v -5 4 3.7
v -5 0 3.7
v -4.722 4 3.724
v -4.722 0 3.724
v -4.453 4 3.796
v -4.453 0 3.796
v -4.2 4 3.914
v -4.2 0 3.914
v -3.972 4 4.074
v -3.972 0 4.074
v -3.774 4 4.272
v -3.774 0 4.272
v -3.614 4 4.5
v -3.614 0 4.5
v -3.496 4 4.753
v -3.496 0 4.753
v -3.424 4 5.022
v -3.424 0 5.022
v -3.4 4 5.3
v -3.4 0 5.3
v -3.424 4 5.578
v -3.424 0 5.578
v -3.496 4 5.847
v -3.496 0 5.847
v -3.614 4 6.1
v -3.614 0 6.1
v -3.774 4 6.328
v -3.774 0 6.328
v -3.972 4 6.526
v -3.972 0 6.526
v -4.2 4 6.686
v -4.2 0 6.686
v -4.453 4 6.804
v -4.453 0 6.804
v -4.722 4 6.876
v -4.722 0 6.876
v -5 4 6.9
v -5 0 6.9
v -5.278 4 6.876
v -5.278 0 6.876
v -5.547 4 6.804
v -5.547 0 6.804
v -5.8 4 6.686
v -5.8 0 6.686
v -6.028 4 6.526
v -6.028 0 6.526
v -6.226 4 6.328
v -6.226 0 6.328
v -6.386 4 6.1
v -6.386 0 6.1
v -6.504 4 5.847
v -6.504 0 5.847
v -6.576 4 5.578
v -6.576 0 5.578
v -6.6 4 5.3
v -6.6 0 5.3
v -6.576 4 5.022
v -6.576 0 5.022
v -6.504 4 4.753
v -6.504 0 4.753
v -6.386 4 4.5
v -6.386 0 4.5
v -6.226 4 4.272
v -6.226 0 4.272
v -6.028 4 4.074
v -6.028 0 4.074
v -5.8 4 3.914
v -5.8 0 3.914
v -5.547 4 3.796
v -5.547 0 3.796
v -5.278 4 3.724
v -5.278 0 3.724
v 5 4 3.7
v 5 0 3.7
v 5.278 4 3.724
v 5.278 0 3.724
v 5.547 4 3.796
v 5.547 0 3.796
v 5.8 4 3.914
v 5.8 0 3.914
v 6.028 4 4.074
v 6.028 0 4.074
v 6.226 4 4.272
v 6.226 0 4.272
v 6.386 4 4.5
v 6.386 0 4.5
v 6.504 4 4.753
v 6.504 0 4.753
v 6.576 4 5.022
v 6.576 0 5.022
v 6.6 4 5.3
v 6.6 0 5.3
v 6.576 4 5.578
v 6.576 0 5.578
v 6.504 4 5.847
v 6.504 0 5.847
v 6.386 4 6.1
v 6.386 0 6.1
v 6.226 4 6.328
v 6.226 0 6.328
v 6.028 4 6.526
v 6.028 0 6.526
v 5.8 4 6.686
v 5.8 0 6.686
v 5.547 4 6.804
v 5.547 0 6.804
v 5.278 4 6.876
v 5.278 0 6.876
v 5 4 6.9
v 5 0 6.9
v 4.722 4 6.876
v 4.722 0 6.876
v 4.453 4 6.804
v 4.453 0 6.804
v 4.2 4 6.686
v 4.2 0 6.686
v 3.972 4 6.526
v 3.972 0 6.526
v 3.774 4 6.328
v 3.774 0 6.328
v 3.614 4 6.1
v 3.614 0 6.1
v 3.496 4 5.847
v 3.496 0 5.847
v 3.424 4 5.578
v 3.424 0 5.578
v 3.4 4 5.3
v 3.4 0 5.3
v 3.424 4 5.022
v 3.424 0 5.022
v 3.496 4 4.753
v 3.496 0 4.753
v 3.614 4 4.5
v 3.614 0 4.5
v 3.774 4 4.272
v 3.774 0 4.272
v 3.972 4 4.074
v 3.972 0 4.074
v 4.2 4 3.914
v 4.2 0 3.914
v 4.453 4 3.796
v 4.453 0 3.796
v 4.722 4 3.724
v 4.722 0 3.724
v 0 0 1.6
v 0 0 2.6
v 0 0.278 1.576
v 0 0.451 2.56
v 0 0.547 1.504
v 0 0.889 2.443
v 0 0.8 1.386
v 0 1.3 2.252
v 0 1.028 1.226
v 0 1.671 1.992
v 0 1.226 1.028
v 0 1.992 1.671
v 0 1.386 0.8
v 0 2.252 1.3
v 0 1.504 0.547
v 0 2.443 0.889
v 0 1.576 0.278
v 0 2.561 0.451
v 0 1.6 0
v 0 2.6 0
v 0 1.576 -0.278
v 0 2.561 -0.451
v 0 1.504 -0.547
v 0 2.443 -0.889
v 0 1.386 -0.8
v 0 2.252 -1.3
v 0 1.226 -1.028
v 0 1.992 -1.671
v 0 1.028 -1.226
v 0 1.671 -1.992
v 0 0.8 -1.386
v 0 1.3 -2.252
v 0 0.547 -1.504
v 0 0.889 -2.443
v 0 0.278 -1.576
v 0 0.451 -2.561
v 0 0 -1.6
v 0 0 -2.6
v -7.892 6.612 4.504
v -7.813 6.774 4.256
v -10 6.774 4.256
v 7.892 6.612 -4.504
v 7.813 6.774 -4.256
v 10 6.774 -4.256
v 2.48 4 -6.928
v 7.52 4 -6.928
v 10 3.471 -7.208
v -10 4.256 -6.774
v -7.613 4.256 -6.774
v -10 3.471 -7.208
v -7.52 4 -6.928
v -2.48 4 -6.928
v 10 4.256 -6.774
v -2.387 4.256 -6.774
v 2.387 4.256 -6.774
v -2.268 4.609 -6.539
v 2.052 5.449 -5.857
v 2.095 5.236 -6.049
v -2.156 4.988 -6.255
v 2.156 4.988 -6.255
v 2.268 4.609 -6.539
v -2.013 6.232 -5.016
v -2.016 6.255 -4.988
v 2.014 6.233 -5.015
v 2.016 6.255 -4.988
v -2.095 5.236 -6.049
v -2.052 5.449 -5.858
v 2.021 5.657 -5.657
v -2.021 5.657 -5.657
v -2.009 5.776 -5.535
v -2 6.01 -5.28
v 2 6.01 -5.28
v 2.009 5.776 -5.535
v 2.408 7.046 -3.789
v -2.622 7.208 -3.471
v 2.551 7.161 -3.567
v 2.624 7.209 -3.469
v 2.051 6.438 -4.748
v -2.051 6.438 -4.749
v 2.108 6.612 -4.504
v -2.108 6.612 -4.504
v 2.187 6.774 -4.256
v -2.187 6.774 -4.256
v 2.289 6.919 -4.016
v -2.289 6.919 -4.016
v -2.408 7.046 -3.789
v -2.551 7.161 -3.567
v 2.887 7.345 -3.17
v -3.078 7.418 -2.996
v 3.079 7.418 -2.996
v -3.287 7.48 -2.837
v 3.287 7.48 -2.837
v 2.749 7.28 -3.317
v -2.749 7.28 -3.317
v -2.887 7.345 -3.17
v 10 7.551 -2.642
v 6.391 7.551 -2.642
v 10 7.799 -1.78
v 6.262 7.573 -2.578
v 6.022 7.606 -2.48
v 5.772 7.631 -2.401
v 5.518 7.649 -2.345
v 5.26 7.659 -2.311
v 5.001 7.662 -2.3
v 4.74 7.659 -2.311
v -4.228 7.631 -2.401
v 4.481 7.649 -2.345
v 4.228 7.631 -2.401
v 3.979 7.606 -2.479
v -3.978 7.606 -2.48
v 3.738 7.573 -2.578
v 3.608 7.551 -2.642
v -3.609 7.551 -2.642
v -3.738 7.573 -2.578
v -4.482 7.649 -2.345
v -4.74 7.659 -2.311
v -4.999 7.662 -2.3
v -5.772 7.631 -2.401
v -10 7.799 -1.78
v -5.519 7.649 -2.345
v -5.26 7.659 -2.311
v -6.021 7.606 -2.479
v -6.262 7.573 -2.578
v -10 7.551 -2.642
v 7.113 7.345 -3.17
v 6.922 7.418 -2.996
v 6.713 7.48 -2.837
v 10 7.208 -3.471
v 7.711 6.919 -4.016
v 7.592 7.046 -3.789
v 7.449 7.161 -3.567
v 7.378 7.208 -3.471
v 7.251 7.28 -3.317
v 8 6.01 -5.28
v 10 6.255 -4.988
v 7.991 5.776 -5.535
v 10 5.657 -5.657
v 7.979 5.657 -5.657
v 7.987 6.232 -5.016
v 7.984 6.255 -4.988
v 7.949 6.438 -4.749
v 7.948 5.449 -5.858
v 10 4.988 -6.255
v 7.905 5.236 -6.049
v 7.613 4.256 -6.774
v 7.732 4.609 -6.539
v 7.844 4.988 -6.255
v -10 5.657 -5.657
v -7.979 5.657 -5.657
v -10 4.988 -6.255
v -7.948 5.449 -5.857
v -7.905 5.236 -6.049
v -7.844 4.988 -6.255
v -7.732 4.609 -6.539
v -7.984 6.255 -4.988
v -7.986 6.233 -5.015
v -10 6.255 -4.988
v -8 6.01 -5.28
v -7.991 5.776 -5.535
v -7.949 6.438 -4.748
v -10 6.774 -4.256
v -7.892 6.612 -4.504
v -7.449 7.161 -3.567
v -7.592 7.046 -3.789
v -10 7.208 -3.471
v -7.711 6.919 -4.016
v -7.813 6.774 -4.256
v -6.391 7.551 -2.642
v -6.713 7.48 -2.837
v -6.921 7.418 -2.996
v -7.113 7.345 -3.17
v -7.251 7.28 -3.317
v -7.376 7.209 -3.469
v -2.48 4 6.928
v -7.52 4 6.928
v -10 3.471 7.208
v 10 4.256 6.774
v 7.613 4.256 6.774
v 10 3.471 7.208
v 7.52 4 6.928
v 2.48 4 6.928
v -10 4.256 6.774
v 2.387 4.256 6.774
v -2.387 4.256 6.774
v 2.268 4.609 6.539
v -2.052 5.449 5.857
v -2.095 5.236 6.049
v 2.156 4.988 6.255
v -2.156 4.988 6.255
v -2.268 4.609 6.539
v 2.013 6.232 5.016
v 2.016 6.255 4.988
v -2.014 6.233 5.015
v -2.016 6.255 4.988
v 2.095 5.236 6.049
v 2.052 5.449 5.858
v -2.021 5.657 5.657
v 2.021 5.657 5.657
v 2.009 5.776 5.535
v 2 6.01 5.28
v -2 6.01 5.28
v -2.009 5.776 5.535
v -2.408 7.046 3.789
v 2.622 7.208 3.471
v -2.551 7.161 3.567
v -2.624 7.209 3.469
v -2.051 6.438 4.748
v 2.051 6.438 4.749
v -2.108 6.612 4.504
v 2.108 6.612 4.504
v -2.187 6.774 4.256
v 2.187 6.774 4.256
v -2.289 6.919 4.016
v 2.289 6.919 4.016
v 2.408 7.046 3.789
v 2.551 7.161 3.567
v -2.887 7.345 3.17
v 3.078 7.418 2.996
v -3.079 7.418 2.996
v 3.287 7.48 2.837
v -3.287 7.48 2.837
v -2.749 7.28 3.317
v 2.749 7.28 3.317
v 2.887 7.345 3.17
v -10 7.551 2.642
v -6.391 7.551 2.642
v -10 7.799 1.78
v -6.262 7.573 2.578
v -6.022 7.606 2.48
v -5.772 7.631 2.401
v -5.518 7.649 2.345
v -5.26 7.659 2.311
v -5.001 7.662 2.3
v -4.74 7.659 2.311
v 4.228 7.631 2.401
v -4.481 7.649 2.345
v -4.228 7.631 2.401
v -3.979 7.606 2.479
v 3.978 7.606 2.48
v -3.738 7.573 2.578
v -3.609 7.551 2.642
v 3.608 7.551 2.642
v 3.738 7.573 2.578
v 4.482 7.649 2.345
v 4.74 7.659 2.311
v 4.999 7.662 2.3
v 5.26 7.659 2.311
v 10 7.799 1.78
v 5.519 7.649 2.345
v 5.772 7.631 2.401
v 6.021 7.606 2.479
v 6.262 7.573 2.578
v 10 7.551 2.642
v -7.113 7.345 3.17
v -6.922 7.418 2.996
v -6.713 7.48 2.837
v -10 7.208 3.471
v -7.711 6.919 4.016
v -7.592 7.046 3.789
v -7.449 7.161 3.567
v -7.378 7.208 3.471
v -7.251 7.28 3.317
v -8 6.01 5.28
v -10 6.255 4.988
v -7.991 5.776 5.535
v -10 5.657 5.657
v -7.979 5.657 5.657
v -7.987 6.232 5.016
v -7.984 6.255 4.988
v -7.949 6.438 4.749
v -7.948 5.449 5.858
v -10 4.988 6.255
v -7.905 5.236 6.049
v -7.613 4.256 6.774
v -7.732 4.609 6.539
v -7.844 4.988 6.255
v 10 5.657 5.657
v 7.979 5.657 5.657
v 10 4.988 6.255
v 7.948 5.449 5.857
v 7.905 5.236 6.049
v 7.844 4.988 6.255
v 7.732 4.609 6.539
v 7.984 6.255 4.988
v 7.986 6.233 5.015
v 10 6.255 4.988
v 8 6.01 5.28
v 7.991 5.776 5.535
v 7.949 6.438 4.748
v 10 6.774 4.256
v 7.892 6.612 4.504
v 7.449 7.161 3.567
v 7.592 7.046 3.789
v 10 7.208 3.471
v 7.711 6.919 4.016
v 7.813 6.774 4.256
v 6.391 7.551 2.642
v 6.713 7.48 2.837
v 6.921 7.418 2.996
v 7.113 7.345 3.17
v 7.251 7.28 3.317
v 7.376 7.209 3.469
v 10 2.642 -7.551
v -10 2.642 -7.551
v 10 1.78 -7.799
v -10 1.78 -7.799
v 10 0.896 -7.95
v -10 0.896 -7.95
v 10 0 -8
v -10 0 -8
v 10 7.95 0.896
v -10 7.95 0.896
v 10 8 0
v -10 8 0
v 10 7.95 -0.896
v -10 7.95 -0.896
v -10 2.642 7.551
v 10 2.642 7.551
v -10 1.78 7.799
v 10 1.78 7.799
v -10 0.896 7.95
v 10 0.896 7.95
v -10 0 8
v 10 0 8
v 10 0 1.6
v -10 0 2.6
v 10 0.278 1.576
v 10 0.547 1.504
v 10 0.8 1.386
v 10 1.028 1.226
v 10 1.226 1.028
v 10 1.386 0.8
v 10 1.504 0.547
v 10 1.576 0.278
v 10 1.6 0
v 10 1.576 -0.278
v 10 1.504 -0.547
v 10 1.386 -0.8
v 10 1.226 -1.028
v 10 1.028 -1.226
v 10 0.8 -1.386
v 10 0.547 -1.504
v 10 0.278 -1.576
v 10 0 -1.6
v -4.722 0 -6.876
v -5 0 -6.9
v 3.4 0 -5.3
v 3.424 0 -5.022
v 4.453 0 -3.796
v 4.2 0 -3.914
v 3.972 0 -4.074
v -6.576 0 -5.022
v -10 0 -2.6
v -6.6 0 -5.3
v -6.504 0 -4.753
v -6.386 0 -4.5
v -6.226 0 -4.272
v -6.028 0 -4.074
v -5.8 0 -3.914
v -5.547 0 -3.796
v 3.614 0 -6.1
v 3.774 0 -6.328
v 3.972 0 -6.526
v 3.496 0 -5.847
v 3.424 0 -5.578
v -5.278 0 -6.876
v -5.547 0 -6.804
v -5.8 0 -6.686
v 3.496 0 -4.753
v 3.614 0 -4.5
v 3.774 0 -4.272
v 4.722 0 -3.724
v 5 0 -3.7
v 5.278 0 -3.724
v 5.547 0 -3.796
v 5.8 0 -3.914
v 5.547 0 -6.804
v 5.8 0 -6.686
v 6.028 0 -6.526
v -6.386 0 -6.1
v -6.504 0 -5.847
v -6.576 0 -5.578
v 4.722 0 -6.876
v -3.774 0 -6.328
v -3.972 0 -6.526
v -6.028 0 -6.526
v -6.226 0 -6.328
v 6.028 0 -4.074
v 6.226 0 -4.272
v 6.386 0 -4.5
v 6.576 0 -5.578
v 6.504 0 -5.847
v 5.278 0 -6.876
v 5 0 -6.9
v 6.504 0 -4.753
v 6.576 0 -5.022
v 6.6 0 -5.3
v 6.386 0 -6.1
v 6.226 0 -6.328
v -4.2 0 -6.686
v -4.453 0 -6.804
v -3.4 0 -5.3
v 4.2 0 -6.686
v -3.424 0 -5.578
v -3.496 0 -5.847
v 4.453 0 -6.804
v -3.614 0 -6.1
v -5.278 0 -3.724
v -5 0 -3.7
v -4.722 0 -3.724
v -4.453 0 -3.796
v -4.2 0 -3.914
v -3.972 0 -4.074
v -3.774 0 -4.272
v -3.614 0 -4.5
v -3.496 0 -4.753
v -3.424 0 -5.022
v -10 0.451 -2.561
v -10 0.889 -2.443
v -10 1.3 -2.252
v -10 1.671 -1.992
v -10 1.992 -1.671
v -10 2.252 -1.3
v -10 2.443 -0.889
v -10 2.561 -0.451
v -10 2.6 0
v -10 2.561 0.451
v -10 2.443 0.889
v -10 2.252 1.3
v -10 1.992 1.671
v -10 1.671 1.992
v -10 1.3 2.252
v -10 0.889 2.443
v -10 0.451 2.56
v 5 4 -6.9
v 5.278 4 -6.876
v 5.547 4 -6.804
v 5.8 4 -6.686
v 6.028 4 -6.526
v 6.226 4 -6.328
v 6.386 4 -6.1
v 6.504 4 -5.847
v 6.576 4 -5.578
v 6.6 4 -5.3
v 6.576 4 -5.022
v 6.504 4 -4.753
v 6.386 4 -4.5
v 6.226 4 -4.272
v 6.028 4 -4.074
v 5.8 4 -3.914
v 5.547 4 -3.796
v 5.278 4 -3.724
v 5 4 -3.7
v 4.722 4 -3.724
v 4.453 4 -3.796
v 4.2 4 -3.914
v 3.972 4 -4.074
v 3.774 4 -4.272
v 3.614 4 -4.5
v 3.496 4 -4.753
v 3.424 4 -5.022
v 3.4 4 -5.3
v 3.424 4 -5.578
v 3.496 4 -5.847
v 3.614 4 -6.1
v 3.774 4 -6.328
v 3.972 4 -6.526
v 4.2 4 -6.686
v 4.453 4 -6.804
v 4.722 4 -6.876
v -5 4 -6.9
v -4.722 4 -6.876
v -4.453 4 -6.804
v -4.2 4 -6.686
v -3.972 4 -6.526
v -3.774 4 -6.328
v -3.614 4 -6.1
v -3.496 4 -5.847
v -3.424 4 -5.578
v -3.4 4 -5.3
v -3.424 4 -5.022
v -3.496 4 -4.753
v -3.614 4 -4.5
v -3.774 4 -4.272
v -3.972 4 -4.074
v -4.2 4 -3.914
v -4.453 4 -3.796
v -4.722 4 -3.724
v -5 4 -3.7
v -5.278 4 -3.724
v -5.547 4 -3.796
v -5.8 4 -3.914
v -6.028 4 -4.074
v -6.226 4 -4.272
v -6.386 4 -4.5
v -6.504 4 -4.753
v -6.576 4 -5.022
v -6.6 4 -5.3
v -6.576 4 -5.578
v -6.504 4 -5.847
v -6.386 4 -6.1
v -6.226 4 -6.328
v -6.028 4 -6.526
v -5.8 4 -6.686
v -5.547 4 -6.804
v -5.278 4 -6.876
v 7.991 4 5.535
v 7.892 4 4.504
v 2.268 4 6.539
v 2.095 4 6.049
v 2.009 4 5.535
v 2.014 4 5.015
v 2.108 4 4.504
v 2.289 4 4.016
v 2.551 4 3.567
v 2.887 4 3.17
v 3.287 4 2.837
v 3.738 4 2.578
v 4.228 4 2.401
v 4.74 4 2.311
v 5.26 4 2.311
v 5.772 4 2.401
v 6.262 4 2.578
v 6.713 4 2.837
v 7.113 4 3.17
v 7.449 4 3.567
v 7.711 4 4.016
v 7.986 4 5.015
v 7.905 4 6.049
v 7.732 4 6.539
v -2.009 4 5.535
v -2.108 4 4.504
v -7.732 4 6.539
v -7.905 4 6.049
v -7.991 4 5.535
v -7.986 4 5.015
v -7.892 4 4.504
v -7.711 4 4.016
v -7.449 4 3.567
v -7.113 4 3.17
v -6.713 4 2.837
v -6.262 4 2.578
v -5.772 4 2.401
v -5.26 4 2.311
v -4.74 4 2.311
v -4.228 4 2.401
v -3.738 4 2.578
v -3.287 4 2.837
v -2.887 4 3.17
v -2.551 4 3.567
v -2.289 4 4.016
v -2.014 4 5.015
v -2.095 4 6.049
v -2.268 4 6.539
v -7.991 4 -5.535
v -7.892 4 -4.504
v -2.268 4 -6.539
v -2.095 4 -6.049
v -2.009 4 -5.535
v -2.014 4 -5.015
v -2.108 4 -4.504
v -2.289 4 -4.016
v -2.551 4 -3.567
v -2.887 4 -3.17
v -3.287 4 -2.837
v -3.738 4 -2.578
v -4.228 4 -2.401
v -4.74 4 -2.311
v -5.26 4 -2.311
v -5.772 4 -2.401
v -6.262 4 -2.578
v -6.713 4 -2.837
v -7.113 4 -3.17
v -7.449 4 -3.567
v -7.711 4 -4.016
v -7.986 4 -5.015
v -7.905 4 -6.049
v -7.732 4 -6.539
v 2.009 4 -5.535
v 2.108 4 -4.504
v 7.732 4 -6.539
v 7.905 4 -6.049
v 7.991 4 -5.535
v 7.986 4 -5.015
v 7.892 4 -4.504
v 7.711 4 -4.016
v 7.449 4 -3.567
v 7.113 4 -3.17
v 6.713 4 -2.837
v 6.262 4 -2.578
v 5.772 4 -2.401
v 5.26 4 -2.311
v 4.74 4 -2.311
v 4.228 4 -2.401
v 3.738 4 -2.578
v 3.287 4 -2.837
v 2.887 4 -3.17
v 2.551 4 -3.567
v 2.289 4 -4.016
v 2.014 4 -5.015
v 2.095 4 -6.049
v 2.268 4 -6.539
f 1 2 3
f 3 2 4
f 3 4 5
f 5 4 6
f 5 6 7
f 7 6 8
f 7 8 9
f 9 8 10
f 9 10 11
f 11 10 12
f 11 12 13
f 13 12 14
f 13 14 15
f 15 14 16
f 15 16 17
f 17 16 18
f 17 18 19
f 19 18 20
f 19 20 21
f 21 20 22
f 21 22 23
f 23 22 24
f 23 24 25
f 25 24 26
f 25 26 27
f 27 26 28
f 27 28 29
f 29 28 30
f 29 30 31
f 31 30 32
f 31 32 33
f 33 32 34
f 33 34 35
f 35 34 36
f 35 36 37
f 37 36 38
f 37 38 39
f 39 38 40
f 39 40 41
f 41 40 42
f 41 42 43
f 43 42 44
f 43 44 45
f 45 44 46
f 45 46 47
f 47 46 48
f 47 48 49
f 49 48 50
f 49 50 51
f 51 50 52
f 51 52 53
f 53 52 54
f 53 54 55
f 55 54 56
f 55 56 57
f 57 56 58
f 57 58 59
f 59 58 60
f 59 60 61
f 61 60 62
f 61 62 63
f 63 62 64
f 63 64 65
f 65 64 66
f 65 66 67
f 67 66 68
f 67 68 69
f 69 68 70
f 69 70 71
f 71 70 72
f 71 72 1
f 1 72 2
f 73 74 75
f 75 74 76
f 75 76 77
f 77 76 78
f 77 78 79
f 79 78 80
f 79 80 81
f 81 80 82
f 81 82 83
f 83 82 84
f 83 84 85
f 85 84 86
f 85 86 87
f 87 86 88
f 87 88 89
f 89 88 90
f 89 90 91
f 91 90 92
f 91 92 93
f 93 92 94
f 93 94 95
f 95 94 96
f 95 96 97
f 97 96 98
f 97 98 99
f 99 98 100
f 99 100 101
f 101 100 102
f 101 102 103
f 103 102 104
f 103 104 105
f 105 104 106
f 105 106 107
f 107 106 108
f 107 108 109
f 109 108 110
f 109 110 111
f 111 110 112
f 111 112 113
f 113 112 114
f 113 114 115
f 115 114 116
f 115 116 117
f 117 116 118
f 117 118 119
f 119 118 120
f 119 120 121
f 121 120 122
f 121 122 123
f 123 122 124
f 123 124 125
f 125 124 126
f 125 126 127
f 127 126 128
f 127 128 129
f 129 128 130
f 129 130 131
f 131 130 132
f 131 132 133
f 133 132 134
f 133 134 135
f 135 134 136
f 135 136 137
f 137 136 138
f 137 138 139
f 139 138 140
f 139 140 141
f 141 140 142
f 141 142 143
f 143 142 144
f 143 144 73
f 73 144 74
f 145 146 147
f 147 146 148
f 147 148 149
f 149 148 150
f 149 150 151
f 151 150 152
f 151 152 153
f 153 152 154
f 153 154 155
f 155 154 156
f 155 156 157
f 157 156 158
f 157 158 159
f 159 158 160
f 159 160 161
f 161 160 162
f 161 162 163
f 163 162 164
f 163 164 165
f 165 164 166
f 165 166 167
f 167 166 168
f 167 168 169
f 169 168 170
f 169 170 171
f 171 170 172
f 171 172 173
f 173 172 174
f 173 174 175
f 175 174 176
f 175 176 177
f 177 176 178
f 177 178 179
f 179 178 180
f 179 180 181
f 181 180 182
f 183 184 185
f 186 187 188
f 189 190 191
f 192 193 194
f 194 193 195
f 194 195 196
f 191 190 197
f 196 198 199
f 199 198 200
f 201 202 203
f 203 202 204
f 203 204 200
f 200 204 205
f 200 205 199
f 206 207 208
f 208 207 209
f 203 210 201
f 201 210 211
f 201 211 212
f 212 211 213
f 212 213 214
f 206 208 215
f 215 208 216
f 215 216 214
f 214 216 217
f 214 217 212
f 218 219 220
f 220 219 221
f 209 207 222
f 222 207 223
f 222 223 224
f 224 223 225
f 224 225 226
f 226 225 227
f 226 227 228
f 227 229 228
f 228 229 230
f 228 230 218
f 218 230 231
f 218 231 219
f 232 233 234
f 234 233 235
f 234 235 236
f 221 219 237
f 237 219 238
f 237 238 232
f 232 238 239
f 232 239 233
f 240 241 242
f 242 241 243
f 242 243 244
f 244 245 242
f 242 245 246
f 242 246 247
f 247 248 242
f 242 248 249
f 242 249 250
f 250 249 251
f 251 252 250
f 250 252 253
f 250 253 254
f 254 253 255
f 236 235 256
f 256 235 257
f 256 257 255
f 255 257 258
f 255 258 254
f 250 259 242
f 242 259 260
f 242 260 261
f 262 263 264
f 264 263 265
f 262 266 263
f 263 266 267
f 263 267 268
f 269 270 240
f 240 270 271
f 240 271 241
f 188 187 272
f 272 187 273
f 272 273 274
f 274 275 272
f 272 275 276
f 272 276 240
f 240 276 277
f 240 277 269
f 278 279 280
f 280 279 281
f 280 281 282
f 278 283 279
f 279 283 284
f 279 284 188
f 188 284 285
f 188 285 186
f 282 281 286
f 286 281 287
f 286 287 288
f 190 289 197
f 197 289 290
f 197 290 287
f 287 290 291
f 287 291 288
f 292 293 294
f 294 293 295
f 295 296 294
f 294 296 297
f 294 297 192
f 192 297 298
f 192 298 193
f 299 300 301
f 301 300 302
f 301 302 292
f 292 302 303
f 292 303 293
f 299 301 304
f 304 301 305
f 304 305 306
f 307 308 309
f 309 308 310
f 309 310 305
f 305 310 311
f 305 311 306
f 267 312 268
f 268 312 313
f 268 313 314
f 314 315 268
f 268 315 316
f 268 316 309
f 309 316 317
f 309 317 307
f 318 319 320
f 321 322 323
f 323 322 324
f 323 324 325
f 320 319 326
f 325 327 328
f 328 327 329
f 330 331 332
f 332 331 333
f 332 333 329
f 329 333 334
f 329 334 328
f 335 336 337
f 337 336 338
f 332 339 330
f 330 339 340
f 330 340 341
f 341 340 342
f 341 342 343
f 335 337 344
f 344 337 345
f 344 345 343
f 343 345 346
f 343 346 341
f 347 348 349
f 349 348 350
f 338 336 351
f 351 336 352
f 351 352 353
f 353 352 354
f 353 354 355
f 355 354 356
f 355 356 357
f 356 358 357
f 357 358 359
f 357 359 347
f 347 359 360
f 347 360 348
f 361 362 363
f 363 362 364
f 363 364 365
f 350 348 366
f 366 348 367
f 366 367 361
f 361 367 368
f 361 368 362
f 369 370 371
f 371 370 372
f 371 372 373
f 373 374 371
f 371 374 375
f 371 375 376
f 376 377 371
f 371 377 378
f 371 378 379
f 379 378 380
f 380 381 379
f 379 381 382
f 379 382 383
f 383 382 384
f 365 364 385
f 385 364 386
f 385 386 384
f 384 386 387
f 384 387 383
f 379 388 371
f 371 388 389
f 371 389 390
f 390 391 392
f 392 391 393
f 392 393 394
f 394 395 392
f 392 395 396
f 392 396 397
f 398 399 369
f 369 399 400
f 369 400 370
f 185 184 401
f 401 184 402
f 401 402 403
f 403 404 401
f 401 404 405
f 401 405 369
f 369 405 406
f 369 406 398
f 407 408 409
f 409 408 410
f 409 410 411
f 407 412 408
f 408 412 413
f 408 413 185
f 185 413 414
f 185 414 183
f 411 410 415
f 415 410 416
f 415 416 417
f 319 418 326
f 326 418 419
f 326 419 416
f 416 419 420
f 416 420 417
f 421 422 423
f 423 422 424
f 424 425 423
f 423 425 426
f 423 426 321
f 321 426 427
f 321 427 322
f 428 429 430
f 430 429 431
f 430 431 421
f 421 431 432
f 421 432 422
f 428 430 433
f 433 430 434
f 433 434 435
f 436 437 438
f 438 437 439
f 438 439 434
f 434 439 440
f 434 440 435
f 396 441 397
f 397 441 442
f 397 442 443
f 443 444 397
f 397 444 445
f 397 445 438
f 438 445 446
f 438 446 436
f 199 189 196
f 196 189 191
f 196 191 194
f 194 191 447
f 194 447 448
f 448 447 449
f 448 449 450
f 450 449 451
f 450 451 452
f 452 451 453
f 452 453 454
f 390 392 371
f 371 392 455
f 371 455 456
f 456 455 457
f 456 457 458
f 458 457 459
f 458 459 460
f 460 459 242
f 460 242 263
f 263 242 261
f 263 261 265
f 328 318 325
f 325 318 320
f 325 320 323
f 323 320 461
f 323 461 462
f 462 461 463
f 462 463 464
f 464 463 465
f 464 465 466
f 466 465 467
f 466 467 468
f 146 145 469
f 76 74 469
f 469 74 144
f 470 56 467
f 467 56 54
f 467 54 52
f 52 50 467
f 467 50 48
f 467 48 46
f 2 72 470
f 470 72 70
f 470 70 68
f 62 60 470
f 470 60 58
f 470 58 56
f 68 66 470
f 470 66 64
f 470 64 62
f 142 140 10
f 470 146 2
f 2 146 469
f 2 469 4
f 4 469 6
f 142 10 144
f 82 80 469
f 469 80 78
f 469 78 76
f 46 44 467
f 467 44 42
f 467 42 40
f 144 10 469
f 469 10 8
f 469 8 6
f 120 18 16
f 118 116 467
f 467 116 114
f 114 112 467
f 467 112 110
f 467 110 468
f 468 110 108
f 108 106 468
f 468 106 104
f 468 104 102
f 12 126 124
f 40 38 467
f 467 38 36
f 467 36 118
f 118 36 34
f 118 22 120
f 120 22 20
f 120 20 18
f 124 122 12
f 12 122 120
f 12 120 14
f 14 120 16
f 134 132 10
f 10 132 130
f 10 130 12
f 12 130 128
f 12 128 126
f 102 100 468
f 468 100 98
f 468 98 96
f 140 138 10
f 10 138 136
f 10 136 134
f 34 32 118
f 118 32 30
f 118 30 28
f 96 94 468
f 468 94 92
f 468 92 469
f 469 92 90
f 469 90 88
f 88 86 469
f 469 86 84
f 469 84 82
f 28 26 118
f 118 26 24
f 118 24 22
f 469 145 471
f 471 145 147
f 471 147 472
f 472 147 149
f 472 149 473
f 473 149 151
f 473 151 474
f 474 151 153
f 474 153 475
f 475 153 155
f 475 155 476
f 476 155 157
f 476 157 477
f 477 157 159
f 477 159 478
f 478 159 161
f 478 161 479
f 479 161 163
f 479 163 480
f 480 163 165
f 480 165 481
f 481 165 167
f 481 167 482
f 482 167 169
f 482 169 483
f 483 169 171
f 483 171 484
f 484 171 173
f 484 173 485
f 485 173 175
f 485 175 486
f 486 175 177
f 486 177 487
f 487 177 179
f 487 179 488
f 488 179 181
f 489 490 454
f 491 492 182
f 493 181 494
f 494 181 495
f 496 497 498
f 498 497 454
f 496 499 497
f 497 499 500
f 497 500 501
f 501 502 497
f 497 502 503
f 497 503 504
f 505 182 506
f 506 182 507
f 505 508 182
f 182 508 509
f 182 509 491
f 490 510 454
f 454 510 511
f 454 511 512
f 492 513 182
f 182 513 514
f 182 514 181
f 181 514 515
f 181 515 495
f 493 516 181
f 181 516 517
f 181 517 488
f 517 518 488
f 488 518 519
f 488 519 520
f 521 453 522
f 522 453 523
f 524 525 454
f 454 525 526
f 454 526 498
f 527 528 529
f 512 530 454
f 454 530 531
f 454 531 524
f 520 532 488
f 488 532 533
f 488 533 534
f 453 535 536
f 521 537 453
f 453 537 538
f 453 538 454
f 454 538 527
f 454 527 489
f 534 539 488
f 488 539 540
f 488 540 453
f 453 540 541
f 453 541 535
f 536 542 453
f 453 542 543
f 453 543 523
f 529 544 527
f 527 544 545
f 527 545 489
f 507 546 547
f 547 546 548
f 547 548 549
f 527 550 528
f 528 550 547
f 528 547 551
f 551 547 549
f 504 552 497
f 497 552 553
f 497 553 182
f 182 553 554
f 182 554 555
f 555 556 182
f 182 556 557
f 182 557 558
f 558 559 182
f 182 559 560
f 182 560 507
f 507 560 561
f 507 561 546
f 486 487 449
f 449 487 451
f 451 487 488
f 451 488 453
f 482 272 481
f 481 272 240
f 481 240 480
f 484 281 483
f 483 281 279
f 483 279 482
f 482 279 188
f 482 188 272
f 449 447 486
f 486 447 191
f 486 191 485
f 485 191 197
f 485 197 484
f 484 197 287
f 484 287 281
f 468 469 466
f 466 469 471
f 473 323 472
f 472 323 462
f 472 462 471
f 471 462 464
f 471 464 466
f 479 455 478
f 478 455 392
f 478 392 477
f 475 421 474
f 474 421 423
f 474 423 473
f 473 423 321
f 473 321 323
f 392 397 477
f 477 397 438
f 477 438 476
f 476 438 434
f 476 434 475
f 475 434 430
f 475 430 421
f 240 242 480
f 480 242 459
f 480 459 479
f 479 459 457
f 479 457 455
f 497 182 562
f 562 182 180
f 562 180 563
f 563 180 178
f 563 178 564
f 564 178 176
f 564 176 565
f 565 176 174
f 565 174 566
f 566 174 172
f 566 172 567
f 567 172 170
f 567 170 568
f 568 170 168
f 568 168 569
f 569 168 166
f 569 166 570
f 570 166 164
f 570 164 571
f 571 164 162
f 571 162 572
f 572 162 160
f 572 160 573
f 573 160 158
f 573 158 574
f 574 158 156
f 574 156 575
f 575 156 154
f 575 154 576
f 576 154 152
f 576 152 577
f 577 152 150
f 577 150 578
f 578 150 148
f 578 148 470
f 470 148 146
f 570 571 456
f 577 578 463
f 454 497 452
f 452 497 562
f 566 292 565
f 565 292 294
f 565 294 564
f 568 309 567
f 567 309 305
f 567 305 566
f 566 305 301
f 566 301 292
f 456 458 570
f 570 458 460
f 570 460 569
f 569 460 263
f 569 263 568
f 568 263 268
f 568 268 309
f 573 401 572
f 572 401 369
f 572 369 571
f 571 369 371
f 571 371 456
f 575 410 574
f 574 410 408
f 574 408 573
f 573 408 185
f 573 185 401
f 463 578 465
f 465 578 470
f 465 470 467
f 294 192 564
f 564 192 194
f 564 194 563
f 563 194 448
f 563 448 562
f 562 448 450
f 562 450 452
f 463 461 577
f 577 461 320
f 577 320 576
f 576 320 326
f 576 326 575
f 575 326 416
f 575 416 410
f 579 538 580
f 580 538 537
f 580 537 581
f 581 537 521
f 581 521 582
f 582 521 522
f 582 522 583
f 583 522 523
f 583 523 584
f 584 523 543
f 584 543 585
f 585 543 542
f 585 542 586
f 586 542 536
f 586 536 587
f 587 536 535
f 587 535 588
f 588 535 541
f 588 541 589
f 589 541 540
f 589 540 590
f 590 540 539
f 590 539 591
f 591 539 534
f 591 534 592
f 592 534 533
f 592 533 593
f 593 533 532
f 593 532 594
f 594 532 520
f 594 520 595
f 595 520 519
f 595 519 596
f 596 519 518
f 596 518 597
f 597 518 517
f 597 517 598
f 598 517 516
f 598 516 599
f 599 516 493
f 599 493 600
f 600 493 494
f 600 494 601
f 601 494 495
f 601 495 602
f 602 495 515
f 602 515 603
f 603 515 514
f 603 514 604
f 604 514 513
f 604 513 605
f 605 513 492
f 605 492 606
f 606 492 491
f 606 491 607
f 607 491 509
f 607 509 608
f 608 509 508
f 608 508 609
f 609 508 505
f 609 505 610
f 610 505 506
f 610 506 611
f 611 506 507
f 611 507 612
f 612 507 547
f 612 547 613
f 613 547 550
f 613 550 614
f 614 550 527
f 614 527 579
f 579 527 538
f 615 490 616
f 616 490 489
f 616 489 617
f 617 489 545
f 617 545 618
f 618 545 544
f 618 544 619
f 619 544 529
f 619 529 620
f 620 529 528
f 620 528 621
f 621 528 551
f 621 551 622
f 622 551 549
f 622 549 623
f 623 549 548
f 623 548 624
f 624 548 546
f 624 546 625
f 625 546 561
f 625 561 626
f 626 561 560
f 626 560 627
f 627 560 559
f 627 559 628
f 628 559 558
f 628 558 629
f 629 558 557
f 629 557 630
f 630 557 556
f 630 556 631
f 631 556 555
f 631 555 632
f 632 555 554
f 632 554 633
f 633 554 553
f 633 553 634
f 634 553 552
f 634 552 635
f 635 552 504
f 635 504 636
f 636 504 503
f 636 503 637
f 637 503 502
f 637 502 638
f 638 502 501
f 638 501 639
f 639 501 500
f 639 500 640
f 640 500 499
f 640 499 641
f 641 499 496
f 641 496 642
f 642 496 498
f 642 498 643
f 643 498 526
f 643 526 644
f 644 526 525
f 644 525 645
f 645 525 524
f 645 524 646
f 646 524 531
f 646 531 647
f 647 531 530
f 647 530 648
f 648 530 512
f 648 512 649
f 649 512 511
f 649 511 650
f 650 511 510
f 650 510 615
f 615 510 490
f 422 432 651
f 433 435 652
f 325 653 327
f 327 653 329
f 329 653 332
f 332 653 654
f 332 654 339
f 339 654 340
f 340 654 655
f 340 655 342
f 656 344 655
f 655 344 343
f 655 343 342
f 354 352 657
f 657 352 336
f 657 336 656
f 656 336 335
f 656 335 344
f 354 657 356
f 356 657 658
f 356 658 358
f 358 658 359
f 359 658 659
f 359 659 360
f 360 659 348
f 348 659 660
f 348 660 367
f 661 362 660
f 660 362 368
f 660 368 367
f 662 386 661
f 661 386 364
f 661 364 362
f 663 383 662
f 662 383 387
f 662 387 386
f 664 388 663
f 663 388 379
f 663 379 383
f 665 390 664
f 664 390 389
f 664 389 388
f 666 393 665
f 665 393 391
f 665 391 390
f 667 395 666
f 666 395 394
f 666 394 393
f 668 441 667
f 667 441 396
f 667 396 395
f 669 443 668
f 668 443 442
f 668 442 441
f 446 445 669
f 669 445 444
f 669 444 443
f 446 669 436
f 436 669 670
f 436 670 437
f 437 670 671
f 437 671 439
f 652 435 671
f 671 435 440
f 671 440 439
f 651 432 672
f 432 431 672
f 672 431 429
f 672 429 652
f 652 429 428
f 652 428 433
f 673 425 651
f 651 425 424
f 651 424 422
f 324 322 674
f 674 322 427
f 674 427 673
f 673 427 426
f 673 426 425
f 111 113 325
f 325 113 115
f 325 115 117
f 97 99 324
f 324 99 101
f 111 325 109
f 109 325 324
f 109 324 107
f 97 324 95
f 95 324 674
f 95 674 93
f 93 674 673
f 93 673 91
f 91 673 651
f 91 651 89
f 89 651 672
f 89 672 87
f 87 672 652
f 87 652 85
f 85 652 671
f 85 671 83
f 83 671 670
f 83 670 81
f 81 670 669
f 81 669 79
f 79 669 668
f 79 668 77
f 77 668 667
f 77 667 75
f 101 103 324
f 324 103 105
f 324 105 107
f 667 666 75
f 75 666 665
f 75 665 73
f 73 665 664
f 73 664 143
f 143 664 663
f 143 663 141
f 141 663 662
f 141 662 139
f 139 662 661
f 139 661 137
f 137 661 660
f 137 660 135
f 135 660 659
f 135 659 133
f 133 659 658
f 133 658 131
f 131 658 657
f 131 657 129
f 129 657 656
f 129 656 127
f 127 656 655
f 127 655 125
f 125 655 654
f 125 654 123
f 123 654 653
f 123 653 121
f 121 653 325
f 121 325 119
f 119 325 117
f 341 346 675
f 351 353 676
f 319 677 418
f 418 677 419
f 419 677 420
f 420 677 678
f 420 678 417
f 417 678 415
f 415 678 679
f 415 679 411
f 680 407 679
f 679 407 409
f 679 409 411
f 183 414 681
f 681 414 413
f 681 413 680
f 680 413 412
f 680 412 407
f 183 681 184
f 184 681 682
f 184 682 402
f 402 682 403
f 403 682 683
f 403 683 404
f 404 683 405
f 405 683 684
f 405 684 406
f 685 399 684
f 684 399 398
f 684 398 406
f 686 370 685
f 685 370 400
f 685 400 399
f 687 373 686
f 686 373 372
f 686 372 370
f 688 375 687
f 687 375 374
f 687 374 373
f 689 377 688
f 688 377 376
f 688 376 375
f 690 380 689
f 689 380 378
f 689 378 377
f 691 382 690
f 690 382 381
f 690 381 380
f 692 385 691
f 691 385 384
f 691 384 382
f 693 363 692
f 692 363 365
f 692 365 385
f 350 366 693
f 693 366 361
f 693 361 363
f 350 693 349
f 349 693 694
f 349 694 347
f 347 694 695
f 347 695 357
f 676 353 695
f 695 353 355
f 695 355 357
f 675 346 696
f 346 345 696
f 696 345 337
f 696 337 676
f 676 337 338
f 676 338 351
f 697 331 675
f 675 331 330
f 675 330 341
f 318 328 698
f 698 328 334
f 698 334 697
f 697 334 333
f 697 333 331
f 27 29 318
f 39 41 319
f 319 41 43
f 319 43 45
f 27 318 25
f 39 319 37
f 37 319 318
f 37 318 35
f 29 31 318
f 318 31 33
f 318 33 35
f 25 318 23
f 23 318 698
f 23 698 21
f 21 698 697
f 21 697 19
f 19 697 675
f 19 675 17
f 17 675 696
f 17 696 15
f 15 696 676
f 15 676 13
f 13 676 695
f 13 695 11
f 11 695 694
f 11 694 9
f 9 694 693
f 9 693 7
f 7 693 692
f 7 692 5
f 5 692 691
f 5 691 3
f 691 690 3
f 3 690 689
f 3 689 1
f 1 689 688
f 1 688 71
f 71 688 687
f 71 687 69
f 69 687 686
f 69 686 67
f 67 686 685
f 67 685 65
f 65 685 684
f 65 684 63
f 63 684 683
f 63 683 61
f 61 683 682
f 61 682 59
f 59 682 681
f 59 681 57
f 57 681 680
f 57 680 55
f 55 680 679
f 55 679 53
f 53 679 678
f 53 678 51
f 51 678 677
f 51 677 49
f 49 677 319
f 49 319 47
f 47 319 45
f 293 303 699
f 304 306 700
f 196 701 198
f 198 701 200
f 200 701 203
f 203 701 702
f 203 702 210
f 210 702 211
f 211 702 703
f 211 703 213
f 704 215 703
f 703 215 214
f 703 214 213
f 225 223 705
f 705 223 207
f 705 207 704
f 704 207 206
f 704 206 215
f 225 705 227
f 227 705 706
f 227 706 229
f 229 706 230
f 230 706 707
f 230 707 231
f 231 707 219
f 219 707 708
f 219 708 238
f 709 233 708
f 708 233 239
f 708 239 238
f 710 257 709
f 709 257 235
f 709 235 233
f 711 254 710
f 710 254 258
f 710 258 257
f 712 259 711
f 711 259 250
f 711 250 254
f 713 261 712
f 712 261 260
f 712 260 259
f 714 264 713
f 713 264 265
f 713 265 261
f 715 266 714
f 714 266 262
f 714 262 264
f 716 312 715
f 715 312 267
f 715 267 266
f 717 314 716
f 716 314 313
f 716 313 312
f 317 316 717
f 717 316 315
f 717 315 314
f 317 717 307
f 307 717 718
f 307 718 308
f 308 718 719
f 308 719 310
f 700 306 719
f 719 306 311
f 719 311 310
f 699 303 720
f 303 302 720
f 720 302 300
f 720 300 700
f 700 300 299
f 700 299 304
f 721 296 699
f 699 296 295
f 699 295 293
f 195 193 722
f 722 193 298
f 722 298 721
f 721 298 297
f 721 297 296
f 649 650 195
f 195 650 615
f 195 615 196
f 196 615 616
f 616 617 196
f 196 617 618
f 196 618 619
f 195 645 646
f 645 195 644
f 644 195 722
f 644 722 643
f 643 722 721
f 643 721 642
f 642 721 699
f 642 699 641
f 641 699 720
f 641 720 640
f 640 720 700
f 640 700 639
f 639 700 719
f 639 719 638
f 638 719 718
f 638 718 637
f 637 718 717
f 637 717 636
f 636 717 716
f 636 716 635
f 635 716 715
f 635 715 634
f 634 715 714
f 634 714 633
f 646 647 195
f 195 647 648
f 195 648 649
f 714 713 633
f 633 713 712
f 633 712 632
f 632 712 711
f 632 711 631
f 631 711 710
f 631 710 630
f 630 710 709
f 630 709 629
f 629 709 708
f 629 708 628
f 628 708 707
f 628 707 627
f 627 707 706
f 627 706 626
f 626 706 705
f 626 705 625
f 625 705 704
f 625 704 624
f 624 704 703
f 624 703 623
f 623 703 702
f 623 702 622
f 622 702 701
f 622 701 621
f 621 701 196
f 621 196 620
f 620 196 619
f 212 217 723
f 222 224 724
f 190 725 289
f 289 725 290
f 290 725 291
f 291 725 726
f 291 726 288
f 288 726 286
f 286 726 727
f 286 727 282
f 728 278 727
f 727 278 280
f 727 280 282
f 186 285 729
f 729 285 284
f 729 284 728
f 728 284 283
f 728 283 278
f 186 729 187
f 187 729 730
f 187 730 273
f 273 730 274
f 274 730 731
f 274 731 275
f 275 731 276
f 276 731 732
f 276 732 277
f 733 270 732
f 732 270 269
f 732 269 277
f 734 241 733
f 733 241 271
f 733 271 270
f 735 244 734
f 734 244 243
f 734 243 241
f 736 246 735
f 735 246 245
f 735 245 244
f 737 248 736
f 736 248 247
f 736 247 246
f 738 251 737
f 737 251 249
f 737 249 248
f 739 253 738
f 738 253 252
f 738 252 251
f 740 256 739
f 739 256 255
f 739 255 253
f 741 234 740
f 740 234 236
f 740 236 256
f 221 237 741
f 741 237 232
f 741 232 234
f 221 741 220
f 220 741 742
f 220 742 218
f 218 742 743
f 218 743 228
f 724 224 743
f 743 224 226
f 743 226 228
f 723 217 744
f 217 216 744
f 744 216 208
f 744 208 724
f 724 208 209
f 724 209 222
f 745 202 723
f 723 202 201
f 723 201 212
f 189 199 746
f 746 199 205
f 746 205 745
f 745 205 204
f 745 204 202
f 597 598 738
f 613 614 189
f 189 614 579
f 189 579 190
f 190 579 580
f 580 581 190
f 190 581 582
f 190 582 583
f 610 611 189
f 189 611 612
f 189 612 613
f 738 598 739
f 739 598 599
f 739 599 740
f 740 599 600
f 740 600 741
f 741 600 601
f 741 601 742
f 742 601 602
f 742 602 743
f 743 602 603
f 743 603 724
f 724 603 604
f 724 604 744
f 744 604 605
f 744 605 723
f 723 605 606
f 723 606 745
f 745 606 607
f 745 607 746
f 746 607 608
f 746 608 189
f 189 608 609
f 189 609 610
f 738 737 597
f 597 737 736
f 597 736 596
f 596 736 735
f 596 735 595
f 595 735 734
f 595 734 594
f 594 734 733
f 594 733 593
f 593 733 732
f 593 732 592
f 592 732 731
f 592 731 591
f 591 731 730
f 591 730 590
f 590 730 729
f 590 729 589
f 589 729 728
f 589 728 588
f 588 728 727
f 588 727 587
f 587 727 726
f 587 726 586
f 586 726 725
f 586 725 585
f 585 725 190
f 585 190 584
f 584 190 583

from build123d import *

# Parameters (mm, degrees)
BOSS_EXTRUDE1_DEPTH = 10
BOSS_EXTRUDE2_DEPTH = 10
SKETCH4_R           = 1.6
CUT_EXTRUDE1_DEPTH  = 10
SKETCH5_R           = 3
SKETCH5_R_2         = 1.6
CUT_EXTRUDE2_DEPTH  = 10


with BuildPart() as part:
    # Sketch2 → Boss-Extrude1 (new body)
    with BuildSketch(Plane(origin=(0, 0, 0), x_dir=(0, 0, -1), z_dir=(1, 0, 0))):
        with BuildLine():
            Line((-8, 0), (-1.6, 0))
            ThreePointArc((-1.6, 0), (0, 1.6), (1.6, 0))
            Line((1.6, 0), (8, 0))
            ThreePointArc((8, 0), (0, 8), (-8, 0))
        make_face()
    extrude(amount=BOSS_EXTRUDE1_DEPTH)

    # Sketch3 → Boss-Extrude2 (add)
    with BuildSketch(Plane.ZY):
        with BuildLine():
            Line((-8, 0), (-2.6, 0))
            ThreePointArc((-2.6, 0), (0, 2.6), (2.6, 0))
            Line((2.6, 0), (8, 0))
            ThreePointArc((8, 0), (0, 8), (-8, 0))
        make_face()
    extrude(amount=BOSS_EXTRUDE2_DEPTH)

    # Sketch4 → Cut-Extrude1 (cut)
    with BuildSketch(Plane.XZ):
        with Locations((-5, 5.3)):
            Circle(SKETCH4_R)
        with Locations((5, 5.3)):
            Circle(SKETCH4_R)
        with Locations((-5, -5.3)):
            Circle(SKETCH4_R)
        with Locations((5, -5.3)):
            Circle(SKETCH4_R)
    extrude(amount=-CUT_EXTRUDE1_DEPTH, mode=Mode.SUBTRACT)

    # Sketch5 → Cut-Extrude2 (cut)
    with BuildSketch(Plane(origin=(0, 4, 0), x_dir=(-1, 0, 0), z_dir=(0, -1, 0))):
        with Locations((-5, 5.3)):
            Circle(SKETCH5_R)
        with Locations((-5, 5.3)):
            Circle(SKETCH5_R_2, mode=Mode.SUBTRACT)
        with Locations((5, 5.3)):
            Circle(SKETCH5_R)
        with Locations((5, 5.3)):
            Circle(SKETCH5_R_2, mode=Mode.SUBTRACT)
        with Locations((5, -5.3)):
            Circle(SKETCH5_R)
        with Locations((-5, -5.3)):
            Circle(SKETCH5_R)
    extrude(amount=-CUT_EXTRUDE2_DEPTH, mode=Mode.SUBTRACT)


solid = part.part
